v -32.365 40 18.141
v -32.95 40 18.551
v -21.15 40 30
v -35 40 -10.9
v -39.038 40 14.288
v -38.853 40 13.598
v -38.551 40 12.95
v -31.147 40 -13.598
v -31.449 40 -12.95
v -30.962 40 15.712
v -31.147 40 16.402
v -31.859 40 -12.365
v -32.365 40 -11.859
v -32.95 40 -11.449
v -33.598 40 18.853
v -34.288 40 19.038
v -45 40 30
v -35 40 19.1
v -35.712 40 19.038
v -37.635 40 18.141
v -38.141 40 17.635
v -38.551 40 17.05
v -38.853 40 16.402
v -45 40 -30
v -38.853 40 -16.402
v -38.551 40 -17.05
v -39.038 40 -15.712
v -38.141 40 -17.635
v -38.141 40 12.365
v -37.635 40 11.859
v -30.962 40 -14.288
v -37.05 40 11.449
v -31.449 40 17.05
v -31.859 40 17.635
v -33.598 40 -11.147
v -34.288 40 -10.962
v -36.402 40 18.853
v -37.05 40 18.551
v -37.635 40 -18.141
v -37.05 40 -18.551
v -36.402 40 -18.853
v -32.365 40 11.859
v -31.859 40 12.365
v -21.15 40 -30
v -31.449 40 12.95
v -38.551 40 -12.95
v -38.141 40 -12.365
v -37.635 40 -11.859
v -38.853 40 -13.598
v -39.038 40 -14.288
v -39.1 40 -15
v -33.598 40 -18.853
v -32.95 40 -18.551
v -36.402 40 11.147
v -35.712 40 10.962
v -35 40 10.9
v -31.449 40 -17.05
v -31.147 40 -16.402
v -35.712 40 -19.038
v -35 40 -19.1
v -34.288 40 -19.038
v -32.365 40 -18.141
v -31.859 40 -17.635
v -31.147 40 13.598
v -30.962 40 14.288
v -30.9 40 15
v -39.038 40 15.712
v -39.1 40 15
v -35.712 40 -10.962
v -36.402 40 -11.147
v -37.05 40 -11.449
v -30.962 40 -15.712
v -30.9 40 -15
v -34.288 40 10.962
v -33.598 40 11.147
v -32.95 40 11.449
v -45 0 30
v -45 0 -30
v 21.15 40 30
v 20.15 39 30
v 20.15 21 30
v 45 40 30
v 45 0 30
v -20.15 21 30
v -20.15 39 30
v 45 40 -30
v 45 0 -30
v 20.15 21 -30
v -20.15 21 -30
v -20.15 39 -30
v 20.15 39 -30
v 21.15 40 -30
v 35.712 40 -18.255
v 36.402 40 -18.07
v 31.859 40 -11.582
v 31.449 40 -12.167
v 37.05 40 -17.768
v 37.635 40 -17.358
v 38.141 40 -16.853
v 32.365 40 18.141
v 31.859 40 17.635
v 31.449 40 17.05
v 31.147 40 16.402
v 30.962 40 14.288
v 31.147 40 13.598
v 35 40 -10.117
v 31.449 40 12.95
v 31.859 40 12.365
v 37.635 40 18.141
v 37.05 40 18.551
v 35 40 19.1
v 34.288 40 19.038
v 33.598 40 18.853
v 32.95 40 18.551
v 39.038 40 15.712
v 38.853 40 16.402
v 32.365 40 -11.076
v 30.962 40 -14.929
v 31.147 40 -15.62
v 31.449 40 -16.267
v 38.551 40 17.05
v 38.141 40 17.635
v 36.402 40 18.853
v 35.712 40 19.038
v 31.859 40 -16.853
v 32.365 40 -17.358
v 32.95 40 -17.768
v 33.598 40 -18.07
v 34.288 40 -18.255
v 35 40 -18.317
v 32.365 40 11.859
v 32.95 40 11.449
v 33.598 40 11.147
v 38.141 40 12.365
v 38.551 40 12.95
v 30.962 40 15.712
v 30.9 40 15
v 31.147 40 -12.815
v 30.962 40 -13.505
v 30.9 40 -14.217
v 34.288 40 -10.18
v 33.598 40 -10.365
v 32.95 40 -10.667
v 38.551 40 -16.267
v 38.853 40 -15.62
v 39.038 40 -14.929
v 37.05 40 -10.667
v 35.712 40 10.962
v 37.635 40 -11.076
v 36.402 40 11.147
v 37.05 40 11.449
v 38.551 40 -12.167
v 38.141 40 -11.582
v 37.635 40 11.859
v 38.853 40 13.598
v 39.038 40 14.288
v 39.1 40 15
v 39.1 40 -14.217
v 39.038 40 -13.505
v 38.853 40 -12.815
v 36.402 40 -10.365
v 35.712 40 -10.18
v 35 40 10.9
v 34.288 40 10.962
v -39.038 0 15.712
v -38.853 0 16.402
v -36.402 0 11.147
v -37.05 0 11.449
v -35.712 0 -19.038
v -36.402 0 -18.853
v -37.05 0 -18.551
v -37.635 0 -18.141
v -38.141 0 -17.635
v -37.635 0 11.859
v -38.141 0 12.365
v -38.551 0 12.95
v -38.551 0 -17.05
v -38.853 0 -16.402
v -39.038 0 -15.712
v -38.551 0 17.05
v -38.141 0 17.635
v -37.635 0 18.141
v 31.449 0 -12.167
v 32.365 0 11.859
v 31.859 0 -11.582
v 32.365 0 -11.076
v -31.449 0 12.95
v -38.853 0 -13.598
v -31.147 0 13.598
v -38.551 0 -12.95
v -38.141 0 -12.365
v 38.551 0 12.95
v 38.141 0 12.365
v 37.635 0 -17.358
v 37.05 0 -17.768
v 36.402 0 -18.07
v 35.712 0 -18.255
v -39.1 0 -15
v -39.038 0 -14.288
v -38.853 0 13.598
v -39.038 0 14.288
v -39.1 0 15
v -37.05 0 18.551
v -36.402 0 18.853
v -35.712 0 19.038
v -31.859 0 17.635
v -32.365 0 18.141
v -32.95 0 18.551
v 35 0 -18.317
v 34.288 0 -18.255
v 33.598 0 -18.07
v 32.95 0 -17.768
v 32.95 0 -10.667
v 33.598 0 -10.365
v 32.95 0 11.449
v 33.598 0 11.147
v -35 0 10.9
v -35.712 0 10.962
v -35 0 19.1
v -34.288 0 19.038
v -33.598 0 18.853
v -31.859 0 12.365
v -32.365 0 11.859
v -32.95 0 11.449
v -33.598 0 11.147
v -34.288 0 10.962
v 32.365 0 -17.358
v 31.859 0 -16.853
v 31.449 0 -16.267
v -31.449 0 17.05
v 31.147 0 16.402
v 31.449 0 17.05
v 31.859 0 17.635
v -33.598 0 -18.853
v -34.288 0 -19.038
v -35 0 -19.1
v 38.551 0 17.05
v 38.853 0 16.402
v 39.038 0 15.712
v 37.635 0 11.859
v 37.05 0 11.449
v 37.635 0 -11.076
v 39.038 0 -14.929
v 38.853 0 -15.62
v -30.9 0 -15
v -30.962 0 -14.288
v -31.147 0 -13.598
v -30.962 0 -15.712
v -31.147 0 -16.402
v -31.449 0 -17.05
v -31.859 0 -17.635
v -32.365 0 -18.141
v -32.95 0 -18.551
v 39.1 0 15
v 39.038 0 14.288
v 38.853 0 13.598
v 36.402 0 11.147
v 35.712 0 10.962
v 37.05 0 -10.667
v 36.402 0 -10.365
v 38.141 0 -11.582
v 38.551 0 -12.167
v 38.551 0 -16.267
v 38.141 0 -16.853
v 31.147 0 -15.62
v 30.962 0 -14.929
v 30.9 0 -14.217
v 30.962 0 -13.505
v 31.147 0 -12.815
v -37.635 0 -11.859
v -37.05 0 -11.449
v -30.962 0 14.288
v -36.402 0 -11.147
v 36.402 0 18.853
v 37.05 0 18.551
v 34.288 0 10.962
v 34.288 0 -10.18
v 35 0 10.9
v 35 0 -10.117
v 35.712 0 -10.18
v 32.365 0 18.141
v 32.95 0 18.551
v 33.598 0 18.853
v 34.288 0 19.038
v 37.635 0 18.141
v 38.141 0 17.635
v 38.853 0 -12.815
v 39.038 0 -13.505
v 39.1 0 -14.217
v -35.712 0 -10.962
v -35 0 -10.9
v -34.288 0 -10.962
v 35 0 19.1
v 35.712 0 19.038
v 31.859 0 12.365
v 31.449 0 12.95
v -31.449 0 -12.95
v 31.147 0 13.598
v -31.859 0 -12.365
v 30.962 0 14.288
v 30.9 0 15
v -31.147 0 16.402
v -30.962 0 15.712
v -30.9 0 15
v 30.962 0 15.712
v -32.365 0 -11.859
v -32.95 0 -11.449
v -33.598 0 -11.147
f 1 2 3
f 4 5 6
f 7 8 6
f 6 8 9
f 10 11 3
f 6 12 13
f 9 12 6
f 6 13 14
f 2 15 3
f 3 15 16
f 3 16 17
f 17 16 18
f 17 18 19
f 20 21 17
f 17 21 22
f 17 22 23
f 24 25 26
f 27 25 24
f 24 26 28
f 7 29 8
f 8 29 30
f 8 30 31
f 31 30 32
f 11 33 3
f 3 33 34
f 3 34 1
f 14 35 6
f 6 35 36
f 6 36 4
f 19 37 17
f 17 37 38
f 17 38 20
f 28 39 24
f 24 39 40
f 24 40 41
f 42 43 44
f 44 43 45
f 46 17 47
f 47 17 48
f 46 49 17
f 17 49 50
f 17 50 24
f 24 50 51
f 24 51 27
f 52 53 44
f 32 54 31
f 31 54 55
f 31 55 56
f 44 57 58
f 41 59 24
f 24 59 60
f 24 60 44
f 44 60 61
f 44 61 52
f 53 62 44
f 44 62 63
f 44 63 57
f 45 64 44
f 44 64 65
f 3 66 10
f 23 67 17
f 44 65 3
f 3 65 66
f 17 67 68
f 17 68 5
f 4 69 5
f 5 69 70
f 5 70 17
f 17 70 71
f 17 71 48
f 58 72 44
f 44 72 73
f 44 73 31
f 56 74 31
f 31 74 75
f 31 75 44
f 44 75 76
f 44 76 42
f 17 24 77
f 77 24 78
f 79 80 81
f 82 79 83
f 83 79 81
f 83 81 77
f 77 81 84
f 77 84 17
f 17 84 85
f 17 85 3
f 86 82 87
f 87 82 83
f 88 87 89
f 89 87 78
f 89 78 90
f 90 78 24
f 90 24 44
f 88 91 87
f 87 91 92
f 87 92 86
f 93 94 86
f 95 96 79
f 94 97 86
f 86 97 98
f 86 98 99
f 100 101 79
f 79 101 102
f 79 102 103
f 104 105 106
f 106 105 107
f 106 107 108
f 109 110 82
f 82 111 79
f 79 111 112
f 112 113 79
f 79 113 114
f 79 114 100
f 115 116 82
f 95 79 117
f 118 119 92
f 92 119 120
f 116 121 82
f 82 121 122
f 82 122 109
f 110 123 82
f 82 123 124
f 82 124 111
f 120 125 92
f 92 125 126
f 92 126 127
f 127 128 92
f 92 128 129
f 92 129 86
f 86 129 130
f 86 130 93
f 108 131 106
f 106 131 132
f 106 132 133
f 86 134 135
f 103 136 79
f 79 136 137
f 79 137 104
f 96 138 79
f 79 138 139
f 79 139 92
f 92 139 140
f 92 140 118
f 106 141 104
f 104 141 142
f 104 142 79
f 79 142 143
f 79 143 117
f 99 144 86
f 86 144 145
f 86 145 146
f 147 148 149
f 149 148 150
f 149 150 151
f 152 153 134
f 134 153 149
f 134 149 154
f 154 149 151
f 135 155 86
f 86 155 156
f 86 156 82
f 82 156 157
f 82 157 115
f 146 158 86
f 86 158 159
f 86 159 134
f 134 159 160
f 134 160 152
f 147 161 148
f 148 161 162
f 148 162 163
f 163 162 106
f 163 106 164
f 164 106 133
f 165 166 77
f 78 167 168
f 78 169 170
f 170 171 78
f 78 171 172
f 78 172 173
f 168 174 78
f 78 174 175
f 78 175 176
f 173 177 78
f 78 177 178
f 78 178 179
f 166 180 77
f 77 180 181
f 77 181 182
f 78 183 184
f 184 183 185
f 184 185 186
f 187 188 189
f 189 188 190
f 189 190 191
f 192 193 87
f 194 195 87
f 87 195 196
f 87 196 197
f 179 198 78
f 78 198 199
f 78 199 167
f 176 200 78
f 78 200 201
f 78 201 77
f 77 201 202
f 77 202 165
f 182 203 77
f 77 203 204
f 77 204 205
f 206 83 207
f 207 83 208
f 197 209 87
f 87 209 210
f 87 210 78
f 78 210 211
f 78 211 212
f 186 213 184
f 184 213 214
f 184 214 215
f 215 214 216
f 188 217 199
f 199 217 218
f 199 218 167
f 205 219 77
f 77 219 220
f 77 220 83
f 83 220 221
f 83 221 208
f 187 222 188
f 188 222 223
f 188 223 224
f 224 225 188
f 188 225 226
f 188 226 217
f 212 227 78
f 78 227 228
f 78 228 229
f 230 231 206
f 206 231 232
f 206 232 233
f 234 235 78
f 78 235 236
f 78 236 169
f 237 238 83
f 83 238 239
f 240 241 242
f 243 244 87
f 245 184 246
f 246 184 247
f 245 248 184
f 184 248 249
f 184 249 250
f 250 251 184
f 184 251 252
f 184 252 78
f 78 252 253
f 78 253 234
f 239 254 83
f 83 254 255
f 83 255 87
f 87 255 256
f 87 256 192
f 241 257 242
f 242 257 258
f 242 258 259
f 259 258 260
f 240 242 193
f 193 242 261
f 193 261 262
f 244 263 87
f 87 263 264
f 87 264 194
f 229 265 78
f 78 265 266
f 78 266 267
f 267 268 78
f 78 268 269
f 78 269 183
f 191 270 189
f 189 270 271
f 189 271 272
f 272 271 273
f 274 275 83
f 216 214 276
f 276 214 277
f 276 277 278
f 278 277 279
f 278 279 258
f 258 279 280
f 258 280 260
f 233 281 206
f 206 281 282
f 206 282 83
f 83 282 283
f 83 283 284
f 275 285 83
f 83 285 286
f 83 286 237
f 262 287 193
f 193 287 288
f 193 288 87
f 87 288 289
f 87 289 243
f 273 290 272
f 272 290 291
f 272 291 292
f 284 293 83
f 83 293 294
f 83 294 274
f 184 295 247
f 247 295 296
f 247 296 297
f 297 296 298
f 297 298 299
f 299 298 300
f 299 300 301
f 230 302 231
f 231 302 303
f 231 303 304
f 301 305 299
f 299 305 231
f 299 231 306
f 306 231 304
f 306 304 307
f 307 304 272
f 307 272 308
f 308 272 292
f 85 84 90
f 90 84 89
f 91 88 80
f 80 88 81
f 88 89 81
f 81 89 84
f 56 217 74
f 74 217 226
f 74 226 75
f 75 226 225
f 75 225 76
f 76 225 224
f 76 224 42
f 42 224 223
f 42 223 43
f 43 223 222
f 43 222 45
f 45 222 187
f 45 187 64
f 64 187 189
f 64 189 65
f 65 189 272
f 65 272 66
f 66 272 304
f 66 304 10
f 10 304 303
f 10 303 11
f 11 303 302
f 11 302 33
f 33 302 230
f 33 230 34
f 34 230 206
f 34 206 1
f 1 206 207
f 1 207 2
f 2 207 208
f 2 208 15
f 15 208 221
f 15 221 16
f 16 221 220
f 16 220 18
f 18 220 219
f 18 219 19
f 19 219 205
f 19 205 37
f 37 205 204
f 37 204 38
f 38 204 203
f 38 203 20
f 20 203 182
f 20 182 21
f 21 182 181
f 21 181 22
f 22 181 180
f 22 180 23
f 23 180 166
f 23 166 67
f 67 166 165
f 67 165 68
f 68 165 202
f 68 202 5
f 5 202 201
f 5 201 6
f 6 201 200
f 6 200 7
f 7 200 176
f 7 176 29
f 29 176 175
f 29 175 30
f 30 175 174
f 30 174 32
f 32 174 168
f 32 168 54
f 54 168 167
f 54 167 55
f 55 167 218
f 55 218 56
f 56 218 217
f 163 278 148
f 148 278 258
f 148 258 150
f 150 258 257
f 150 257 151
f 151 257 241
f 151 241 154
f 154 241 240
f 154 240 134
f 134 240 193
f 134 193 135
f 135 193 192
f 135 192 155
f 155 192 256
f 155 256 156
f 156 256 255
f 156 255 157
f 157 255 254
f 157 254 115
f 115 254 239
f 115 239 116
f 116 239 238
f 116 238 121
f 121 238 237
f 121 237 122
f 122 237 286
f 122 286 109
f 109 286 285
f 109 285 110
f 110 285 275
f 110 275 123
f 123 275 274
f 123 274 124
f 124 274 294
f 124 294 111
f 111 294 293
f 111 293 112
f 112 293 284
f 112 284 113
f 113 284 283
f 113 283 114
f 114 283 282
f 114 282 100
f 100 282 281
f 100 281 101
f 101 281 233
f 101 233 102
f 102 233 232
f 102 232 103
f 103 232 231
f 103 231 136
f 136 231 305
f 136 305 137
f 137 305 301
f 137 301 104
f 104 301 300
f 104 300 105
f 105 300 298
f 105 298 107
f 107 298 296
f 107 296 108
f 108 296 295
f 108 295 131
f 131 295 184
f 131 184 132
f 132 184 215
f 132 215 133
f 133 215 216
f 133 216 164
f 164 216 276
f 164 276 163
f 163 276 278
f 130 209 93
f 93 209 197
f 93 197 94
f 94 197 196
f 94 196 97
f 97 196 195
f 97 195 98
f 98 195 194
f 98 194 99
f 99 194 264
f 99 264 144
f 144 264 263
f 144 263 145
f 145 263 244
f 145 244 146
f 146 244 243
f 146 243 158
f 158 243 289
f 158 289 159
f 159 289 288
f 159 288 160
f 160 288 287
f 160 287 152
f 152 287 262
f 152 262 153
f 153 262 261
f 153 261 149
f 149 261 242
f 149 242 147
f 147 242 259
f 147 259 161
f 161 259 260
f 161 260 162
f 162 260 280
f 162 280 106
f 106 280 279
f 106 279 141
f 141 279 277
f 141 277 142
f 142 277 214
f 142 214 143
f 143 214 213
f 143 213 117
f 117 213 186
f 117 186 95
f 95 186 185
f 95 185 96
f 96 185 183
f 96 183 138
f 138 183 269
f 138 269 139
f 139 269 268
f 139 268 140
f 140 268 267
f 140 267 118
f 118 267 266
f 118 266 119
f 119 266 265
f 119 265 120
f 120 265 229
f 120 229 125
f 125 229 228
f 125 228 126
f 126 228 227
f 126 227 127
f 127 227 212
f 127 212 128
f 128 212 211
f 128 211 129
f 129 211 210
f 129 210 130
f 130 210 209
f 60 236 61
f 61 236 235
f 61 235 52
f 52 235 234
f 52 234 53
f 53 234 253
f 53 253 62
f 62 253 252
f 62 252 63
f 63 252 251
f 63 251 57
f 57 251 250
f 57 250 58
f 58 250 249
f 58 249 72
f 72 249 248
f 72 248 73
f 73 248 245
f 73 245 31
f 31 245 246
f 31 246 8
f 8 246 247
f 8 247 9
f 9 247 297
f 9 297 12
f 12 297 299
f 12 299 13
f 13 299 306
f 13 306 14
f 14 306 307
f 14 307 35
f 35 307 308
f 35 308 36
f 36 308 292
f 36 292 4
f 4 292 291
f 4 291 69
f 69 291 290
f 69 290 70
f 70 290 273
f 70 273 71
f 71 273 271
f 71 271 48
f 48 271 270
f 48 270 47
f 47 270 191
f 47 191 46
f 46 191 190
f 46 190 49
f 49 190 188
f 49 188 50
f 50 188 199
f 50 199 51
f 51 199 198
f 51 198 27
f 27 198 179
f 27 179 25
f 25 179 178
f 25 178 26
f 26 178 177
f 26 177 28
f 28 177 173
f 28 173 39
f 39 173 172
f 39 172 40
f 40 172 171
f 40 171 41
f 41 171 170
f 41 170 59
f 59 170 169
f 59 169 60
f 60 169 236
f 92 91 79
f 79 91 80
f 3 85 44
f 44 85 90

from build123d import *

# Parameters (mm, degrees)
SKETCH1_W           = 90
SKETCH1_H           = 60
BOSS_EXTRUDE1_DEPTH = 40
SKETCH2_W           = 40.3
SKETCH2_H           = 38
CUT_EXTRUDE1_DEPTH  = 61
SKETCH3_R           = 4.1
CUT_EXTRUDE2_DEPTH  = 41
CHAMFER1_SIZE       = 1


with BuildPart() as part:
    # Sketch1 → Boss-Extrude1 (new body)
    with BuildSketch(Plane(origin=(0, 0, 0), x_dir=(1, 0, 0), z_dir=(0, 1, 0))):
        Rectangle(SKETCH1_W, SKETCH1_H)
    extrude(amount=BOSS_EXTRUDE1_DEPTH)

    # Sketch2 → Cut-Extrude1 (cut, through all)
    with BuildSketch(Plane.XY.offset(30)):
        with Locations((0, 40)):
            Rectangle(SKETCH2_W, SKETCH2_H)
    extrude(amount=-CUT_EXTRUDE1_DEPTH, mode=Mode.SUBTRACT)

    # Sketch3 → Cut-Extrude2 (cut, through all)
    with BuildSketch(Plane.XZ):
        with Locations((-35, 15)):
            Circle(SKETCH3_R)
        with Locations((-35, -15)):
            Circle(SKETCH3_R)
        with Locations((35, -14.217273236)):
            Circle(SKETCH3_R)
        with Locations((35, 15)):
            Circle(SKETCH3_R)
    extrude(amount=-CUT_EXTRUDE2_DEPTH, mode=Mode.SUBTRACT)

    # Chamfer1
    chamfer1_edges = [part.edges().sort_by_distance(p)[0] for p in [
        (20.15, 40, 0),
        (-20.15, 40, 0),
    ]]
    chamfer(chamfer1_edges, length=CHAMFER1_SIZE)


solid = part.part
